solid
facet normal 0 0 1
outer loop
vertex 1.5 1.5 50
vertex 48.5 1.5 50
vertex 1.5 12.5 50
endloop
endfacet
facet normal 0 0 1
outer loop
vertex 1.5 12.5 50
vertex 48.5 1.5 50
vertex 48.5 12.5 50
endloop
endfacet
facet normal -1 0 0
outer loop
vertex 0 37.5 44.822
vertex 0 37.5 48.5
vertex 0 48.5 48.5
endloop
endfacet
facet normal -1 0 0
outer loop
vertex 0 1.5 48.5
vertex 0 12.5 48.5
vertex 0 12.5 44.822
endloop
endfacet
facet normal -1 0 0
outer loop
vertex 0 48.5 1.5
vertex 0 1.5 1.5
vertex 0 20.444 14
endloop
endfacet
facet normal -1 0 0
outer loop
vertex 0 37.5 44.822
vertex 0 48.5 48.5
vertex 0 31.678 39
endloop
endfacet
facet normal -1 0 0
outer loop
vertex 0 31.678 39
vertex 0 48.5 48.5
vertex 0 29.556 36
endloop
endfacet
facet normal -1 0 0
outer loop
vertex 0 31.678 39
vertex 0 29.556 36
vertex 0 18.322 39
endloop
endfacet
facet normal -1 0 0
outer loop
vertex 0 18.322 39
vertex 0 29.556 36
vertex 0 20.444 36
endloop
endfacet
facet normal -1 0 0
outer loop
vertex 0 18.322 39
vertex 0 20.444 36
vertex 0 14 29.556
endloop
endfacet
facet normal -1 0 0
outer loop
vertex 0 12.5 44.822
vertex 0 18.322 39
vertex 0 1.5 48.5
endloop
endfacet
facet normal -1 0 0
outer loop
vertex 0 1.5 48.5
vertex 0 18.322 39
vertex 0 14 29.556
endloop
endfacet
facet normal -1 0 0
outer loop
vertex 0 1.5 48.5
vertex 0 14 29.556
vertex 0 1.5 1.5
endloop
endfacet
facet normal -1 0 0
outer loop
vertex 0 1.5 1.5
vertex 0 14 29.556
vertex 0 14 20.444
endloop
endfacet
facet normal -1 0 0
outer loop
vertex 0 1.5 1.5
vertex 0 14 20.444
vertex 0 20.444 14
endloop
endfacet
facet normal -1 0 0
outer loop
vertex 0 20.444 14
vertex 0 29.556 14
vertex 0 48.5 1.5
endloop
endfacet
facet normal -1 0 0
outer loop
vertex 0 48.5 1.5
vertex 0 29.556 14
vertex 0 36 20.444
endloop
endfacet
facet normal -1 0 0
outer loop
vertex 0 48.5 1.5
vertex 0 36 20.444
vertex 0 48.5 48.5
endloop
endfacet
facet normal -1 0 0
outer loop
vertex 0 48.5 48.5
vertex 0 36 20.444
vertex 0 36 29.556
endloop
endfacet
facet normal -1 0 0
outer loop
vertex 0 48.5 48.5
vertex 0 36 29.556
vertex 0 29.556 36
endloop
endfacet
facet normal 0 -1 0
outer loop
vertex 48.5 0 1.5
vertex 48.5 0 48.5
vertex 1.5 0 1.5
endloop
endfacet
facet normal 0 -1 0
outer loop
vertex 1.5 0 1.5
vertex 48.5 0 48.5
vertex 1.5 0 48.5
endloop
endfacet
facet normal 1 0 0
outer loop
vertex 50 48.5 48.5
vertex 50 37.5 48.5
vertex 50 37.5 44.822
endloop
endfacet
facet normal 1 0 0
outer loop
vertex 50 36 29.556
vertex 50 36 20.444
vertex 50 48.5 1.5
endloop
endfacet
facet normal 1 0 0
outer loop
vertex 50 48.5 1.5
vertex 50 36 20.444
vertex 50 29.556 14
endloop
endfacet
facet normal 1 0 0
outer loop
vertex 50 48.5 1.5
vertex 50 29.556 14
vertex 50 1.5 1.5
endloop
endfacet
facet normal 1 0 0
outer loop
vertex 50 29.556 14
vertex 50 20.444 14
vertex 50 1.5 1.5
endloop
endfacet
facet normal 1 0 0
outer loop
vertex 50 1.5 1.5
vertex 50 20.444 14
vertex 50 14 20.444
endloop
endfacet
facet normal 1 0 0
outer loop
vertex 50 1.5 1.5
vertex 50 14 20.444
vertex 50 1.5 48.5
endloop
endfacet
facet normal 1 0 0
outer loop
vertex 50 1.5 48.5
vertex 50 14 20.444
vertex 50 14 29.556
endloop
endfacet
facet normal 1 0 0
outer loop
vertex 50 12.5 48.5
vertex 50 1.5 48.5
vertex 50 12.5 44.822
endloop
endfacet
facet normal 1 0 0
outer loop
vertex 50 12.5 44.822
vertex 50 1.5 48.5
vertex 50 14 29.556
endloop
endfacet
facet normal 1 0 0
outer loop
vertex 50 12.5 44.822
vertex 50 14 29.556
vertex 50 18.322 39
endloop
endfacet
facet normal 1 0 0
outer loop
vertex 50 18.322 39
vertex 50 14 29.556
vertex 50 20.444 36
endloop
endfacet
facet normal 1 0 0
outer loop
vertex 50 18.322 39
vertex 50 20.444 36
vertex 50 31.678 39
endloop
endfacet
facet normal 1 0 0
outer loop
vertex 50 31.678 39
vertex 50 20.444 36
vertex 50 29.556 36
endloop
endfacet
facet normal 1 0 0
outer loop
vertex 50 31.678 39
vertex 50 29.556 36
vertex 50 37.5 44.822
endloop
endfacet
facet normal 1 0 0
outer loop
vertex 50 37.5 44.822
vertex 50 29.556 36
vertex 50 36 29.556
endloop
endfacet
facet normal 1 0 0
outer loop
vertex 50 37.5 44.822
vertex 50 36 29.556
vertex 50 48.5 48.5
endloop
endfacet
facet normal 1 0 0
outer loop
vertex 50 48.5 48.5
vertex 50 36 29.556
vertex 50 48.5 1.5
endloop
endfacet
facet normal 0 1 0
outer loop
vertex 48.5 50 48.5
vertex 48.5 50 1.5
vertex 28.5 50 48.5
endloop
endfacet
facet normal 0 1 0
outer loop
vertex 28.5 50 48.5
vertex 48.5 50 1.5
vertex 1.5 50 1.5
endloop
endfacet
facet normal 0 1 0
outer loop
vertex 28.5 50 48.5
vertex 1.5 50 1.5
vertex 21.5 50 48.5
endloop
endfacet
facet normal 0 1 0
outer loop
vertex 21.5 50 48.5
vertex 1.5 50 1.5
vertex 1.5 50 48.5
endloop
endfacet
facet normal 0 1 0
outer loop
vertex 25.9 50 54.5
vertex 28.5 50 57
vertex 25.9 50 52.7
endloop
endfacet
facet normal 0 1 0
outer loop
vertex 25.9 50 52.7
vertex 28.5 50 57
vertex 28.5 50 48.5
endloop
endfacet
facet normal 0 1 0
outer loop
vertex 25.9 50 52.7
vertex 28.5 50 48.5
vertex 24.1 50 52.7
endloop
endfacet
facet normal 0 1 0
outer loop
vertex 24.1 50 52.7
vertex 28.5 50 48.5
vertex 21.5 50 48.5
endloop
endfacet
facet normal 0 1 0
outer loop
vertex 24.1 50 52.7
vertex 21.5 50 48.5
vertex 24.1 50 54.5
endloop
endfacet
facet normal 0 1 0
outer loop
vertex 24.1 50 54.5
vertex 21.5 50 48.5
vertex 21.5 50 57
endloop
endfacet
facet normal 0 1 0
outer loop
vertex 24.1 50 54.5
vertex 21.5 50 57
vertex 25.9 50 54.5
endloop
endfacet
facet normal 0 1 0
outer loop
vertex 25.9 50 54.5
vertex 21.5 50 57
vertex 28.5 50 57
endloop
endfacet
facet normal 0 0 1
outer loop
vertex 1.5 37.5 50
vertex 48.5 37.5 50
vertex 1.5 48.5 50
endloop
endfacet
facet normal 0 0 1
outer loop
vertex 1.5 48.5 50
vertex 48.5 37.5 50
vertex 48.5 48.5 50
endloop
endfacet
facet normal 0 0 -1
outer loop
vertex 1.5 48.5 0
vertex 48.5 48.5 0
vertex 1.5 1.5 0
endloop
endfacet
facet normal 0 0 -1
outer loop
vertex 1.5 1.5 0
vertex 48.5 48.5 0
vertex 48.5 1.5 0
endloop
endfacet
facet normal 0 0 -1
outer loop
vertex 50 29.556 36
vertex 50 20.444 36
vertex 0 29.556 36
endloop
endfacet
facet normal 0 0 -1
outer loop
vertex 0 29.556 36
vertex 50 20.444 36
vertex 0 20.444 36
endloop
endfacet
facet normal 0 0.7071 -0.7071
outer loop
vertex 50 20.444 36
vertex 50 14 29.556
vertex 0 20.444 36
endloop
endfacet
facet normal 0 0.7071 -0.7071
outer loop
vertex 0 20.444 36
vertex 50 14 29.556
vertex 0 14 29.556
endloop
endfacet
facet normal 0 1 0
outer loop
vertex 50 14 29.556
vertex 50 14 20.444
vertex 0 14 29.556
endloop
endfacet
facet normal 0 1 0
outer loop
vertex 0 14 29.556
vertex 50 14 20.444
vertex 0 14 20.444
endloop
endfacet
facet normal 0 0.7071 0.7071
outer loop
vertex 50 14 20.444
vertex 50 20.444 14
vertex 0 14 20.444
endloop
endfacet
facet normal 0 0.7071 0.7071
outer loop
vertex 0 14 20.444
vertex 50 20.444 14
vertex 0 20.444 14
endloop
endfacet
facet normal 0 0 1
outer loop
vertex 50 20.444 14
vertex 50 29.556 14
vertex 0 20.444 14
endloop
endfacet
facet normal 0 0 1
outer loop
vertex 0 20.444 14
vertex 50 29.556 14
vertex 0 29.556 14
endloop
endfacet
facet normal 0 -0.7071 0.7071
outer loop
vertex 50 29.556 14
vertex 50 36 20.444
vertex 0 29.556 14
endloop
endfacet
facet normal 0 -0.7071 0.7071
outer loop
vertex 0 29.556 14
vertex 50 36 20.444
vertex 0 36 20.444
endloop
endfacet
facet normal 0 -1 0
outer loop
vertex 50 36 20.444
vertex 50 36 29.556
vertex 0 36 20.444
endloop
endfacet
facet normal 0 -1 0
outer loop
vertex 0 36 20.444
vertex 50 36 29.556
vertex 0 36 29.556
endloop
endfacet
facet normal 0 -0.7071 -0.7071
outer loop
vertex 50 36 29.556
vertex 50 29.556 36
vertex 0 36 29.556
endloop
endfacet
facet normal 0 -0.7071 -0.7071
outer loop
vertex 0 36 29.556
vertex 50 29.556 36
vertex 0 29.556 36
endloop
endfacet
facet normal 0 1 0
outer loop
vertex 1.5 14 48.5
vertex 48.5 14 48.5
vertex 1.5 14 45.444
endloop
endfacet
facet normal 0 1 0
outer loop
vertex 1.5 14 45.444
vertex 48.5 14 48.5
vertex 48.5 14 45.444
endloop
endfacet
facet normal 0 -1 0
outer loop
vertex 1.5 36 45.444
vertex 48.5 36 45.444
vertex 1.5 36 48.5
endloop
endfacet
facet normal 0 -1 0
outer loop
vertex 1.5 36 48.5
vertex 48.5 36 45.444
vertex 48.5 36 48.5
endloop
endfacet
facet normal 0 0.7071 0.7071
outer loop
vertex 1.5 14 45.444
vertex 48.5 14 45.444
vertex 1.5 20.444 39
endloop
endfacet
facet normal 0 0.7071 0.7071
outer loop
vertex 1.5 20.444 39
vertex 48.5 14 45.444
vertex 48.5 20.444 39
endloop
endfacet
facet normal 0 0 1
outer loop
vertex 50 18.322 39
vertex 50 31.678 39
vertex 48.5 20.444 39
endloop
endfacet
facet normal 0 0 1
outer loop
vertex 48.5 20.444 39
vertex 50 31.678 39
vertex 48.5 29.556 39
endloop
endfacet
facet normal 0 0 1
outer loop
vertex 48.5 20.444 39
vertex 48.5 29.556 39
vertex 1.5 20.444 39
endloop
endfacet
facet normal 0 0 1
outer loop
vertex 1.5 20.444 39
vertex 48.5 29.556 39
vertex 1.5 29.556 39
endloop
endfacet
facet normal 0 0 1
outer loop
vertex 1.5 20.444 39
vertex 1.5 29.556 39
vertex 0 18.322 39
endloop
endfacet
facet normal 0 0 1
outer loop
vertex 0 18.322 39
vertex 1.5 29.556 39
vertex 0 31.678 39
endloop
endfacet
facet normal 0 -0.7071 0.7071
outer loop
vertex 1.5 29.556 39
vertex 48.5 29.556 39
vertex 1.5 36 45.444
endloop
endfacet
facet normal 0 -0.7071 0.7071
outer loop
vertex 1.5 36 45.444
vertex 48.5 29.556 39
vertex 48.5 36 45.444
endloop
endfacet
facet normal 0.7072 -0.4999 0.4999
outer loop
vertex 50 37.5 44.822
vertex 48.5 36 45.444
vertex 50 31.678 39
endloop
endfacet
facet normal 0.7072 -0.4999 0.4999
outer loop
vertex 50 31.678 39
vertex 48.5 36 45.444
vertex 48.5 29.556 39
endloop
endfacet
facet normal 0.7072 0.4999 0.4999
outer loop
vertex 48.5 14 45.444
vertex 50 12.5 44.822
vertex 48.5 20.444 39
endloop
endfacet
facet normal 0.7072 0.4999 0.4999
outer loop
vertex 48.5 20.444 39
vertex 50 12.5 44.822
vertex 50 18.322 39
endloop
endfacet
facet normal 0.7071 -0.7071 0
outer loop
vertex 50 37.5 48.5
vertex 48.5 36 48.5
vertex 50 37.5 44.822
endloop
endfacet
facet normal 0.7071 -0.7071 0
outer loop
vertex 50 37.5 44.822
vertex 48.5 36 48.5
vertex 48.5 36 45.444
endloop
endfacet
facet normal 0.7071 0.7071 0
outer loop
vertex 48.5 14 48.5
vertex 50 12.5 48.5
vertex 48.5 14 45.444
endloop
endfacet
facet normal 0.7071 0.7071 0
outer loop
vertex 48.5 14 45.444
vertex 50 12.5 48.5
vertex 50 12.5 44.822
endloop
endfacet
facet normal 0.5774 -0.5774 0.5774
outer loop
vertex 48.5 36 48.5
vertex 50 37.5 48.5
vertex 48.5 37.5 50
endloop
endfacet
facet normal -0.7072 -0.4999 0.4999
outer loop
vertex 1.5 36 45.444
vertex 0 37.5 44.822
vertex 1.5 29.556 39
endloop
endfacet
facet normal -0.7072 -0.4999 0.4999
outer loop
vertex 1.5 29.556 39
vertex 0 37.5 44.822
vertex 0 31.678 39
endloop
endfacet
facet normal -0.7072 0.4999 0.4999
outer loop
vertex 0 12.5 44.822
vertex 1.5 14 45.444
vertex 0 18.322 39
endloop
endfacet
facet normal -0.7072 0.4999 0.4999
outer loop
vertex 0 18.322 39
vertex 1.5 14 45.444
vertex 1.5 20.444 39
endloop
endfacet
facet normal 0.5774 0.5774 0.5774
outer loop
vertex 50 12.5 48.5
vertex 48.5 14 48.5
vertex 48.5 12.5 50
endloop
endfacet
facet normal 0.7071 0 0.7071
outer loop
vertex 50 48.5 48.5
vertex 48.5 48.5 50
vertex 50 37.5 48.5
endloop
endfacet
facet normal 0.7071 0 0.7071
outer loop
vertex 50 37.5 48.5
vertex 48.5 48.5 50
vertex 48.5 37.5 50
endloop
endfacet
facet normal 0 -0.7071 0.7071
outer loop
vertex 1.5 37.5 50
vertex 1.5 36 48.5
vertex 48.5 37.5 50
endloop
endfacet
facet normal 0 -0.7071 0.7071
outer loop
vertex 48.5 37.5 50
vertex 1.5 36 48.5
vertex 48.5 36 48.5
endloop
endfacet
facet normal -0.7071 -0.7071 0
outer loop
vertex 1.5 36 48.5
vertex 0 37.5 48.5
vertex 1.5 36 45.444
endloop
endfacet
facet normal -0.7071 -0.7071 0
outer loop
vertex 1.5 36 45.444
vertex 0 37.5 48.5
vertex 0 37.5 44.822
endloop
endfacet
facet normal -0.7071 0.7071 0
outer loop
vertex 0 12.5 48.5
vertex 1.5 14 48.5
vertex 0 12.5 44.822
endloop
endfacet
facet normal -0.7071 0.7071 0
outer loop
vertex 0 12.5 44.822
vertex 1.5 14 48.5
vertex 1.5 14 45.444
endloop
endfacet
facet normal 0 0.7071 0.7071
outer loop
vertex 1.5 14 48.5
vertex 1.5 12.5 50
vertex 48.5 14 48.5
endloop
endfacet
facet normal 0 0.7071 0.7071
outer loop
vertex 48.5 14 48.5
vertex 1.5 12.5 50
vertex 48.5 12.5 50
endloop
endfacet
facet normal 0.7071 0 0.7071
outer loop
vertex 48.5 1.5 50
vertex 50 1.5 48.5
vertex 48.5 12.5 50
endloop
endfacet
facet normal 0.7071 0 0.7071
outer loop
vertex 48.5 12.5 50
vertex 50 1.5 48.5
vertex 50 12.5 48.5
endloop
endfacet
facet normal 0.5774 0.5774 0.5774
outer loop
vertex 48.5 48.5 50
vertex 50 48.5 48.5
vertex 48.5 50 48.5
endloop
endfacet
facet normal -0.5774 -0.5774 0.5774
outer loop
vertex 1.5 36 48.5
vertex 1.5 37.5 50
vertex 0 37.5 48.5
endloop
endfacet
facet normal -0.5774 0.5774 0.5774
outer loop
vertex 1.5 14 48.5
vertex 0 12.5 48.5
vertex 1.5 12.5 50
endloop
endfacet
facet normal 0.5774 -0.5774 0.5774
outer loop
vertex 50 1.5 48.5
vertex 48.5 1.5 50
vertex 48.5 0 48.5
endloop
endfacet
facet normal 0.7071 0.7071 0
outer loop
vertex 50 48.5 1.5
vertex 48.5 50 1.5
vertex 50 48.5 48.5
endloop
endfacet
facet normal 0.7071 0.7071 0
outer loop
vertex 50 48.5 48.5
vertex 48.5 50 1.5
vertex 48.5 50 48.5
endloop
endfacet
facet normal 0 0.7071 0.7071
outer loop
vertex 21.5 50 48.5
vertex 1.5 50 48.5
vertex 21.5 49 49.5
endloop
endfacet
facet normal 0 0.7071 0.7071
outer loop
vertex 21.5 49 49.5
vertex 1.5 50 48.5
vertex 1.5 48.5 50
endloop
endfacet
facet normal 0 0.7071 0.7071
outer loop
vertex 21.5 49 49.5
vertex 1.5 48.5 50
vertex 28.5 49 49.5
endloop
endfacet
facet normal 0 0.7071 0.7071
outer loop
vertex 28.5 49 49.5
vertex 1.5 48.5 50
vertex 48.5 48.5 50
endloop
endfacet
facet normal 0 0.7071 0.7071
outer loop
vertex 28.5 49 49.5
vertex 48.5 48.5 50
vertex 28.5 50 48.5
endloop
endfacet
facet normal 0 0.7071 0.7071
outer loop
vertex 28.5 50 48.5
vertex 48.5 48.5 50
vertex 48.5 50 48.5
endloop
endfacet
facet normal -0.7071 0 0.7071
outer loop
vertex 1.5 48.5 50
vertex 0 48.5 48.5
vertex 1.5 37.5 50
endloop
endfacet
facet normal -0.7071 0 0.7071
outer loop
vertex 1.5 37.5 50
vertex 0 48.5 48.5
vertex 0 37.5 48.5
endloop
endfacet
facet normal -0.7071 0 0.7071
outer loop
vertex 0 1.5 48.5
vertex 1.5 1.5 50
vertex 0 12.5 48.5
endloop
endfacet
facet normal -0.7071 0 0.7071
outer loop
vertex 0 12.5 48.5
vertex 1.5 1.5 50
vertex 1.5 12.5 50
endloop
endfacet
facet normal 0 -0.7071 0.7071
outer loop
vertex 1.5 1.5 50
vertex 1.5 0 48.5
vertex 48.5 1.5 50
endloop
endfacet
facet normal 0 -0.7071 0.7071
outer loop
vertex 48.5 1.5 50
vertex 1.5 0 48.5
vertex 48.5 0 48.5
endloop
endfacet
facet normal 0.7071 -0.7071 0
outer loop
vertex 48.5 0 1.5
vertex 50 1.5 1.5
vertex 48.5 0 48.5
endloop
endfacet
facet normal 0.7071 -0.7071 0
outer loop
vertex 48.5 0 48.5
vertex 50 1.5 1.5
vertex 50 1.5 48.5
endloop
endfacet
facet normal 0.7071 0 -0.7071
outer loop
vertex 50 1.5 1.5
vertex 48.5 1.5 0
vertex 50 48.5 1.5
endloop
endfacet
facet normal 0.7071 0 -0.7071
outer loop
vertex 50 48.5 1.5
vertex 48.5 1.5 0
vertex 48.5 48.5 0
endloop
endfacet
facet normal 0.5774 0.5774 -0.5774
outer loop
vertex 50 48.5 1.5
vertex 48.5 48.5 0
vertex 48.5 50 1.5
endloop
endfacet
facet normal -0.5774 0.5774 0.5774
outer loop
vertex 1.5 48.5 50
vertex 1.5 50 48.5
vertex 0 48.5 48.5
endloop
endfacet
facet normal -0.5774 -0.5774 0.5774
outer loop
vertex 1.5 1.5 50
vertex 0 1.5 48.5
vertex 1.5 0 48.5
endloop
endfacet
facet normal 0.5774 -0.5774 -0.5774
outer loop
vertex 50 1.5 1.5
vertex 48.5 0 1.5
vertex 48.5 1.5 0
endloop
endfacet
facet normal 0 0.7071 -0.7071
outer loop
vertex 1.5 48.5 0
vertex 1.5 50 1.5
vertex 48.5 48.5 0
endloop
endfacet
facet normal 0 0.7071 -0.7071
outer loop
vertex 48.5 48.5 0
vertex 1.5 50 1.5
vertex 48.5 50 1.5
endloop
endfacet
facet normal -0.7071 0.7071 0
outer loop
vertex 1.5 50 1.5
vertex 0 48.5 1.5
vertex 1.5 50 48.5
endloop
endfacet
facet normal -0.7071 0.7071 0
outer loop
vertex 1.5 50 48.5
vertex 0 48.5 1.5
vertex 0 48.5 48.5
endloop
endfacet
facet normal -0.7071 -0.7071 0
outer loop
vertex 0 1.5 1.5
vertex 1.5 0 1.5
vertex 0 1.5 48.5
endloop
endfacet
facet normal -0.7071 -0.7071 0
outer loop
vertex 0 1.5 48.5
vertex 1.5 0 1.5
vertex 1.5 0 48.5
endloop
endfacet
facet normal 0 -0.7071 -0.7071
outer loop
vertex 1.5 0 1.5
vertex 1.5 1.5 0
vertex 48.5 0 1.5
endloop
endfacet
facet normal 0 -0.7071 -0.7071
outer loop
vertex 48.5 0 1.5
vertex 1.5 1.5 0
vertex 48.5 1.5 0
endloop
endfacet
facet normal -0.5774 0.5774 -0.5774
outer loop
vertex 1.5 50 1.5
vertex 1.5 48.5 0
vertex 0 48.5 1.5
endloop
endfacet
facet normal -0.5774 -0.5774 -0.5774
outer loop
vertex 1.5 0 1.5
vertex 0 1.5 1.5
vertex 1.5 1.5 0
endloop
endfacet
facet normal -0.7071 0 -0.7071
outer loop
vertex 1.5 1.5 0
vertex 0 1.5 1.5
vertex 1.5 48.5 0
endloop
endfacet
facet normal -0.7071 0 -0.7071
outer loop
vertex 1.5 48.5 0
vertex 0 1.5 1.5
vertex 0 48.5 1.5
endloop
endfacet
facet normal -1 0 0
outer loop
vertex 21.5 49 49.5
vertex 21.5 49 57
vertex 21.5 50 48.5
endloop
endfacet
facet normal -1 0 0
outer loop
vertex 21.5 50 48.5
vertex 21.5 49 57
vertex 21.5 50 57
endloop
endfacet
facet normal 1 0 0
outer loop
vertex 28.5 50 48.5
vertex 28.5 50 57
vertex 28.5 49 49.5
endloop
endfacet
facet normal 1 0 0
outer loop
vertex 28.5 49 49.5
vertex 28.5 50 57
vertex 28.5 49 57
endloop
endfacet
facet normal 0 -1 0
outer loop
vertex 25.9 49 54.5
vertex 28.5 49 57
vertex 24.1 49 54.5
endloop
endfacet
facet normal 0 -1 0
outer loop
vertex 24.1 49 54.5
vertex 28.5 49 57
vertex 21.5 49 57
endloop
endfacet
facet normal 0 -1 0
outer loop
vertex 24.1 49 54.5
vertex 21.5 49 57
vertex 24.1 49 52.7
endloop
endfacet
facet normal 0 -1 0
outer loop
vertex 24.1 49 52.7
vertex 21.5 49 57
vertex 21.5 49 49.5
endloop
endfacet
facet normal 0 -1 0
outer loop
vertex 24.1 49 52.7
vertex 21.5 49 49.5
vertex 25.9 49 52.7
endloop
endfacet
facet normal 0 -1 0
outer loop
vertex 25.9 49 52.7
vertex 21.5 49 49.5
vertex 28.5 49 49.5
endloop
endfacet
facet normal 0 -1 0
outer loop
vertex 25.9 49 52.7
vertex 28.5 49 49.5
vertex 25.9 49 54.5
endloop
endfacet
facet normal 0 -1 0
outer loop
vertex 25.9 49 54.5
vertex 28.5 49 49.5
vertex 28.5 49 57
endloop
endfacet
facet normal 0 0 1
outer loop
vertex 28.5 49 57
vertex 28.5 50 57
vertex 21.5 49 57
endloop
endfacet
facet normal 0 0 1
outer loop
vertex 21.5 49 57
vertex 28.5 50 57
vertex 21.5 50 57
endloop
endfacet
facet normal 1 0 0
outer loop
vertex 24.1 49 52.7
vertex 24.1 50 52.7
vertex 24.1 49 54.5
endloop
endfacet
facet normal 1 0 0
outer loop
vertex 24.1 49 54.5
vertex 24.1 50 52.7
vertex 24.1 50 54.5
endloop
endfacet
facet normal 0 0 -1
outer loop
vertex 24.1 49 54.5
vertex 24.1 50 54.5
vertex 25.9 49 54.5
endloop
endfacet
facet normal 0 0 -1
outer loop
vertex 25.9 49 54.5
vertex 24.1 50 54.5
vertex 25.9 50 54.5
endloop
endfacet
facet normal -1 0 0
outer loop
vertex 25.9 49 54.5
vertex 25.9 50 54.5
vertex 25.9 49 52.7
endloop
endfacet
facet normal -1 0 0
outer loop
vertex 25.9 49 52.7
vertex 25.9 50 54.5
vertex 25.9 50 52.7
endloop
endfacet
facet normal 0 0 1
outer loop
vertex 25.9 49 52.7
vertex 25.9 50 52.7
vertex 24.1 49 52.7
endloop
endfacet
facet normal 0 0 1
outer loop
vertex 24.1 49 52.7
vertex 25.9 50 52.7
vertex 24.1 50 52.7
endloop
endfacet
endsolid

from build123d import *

# Parameters (mm, degrees)
SKETCH1_W                = 50
SKETCH1_H                = 50
BOSS_EXTRUDE1_DEPTH      = 50
CUT_EXTRUDE1_DEPTH       = 87.602540378
CHAMFER1_SIZE            = 1.5
BOSS_EXTRUDE2_DEPTH      = 7
BOSS_EXTRUDE2_DEPTH_BACK = 10
SKETCH3_W                = 7
SKETCH3_H                = 1
SKETCH4_W                = 1.8
SKETCH4_H                = 1.8
CUT_EXTRUDE2_DEPTH       = 7


with BuildPart() as part:
    # Sketch1 → Boss-Extrude1 (new body)
    with BuildSketch(Plane.XY):
        with Locations((25, 25)):
            Rectangle(SKETCH1_W, SKETCH1_H)
    extrude(amount=BOSS_EXTRUDE1_DEPTH)

    # Sketch2 → Cut-Extrude1 (cut, through all)
    with BuildSketch(Plane.ZY):
        Polygon((36, 29.556349186), (29.556349186, 36), (20.443650814, 36), (14, 29.556349186), (14, 20.443650814), (20.443650814, 14), (29.556349186, 14), (36, 20.443650814), align=None)
        Polygon((54.556349186, 36), (45.443650814, 36), (39, 29.556349186), (39, 20.443650814), (45.443650814, 14), (54.556349186, 14), (61, 20.443650814), (61, 29.556349186), align=None)
    extrude(amount=-CUT_EXTRUDE1_DEPTH, mode=Mode.SUBTRACT)

    # Chamfer1
    chamfer1_edges = [part.edges().sort_by_distance(p)[0] for p in [
        (50, 7, 50),
        (0, 7, 50),
        (50, 43, 50),
        (25, 36, 50),
        (25, 14, 50),
        (25, 50, 50),
        (50, 14, 47.721825407),
        (50, 36, 47.721825407),
        (0, 14, 47.721825407),
        (0, 36, 47.721825407),
        (0, 32.778174593, 42.221825407),
        (0, 17.221825407, 42.221825407),
        (50, 17.221825407, 42.221825407),
        (50, 32.778174593, 42.221825407),
        (0, 43, 50),
        (25, 50, 0),
        (50, 25, 0),
        (25, 0, 0),
        (0, 25, 0),
        (25, 0, 50),
        (0, 50, 25),
        (50, 50, 25),
        (50, 0, 25),
        (0, 0, 25),
    ]]
    chamfer(chamfer1_edges, length=CHAMFER1_SIZE)

    # Sketch3 → Boss-Extrude2 (add, two sides: drawn at the far end of the back side and taken through both)
    with BuildSketch(Plane.XY.offset(50).offset(-BOSS_EXTRUDE2_DEPTH_BACK)):
        with Locations((25, 49.5)):
            Rectangle(SKETCH3_W, SKETCH3_H)
    extrude(amount=BOSS_EXTRUDE2_DEPTH + BOSS_EXTRUDE2_DEPTH_BACK)

    # Sketch4 → Cut-Extrude2 (cut)
    with BuildSketch(Plane.XZ.offset(-49)):
        with Locations((25, 53.6)):
            Rectangle(SKETCH4_W, SKETCH4_H)
    extrude(amount=-CUT_EXTRUDE2_DEPTH, mode=Mode.SUBTRACT)


solid = part.part
